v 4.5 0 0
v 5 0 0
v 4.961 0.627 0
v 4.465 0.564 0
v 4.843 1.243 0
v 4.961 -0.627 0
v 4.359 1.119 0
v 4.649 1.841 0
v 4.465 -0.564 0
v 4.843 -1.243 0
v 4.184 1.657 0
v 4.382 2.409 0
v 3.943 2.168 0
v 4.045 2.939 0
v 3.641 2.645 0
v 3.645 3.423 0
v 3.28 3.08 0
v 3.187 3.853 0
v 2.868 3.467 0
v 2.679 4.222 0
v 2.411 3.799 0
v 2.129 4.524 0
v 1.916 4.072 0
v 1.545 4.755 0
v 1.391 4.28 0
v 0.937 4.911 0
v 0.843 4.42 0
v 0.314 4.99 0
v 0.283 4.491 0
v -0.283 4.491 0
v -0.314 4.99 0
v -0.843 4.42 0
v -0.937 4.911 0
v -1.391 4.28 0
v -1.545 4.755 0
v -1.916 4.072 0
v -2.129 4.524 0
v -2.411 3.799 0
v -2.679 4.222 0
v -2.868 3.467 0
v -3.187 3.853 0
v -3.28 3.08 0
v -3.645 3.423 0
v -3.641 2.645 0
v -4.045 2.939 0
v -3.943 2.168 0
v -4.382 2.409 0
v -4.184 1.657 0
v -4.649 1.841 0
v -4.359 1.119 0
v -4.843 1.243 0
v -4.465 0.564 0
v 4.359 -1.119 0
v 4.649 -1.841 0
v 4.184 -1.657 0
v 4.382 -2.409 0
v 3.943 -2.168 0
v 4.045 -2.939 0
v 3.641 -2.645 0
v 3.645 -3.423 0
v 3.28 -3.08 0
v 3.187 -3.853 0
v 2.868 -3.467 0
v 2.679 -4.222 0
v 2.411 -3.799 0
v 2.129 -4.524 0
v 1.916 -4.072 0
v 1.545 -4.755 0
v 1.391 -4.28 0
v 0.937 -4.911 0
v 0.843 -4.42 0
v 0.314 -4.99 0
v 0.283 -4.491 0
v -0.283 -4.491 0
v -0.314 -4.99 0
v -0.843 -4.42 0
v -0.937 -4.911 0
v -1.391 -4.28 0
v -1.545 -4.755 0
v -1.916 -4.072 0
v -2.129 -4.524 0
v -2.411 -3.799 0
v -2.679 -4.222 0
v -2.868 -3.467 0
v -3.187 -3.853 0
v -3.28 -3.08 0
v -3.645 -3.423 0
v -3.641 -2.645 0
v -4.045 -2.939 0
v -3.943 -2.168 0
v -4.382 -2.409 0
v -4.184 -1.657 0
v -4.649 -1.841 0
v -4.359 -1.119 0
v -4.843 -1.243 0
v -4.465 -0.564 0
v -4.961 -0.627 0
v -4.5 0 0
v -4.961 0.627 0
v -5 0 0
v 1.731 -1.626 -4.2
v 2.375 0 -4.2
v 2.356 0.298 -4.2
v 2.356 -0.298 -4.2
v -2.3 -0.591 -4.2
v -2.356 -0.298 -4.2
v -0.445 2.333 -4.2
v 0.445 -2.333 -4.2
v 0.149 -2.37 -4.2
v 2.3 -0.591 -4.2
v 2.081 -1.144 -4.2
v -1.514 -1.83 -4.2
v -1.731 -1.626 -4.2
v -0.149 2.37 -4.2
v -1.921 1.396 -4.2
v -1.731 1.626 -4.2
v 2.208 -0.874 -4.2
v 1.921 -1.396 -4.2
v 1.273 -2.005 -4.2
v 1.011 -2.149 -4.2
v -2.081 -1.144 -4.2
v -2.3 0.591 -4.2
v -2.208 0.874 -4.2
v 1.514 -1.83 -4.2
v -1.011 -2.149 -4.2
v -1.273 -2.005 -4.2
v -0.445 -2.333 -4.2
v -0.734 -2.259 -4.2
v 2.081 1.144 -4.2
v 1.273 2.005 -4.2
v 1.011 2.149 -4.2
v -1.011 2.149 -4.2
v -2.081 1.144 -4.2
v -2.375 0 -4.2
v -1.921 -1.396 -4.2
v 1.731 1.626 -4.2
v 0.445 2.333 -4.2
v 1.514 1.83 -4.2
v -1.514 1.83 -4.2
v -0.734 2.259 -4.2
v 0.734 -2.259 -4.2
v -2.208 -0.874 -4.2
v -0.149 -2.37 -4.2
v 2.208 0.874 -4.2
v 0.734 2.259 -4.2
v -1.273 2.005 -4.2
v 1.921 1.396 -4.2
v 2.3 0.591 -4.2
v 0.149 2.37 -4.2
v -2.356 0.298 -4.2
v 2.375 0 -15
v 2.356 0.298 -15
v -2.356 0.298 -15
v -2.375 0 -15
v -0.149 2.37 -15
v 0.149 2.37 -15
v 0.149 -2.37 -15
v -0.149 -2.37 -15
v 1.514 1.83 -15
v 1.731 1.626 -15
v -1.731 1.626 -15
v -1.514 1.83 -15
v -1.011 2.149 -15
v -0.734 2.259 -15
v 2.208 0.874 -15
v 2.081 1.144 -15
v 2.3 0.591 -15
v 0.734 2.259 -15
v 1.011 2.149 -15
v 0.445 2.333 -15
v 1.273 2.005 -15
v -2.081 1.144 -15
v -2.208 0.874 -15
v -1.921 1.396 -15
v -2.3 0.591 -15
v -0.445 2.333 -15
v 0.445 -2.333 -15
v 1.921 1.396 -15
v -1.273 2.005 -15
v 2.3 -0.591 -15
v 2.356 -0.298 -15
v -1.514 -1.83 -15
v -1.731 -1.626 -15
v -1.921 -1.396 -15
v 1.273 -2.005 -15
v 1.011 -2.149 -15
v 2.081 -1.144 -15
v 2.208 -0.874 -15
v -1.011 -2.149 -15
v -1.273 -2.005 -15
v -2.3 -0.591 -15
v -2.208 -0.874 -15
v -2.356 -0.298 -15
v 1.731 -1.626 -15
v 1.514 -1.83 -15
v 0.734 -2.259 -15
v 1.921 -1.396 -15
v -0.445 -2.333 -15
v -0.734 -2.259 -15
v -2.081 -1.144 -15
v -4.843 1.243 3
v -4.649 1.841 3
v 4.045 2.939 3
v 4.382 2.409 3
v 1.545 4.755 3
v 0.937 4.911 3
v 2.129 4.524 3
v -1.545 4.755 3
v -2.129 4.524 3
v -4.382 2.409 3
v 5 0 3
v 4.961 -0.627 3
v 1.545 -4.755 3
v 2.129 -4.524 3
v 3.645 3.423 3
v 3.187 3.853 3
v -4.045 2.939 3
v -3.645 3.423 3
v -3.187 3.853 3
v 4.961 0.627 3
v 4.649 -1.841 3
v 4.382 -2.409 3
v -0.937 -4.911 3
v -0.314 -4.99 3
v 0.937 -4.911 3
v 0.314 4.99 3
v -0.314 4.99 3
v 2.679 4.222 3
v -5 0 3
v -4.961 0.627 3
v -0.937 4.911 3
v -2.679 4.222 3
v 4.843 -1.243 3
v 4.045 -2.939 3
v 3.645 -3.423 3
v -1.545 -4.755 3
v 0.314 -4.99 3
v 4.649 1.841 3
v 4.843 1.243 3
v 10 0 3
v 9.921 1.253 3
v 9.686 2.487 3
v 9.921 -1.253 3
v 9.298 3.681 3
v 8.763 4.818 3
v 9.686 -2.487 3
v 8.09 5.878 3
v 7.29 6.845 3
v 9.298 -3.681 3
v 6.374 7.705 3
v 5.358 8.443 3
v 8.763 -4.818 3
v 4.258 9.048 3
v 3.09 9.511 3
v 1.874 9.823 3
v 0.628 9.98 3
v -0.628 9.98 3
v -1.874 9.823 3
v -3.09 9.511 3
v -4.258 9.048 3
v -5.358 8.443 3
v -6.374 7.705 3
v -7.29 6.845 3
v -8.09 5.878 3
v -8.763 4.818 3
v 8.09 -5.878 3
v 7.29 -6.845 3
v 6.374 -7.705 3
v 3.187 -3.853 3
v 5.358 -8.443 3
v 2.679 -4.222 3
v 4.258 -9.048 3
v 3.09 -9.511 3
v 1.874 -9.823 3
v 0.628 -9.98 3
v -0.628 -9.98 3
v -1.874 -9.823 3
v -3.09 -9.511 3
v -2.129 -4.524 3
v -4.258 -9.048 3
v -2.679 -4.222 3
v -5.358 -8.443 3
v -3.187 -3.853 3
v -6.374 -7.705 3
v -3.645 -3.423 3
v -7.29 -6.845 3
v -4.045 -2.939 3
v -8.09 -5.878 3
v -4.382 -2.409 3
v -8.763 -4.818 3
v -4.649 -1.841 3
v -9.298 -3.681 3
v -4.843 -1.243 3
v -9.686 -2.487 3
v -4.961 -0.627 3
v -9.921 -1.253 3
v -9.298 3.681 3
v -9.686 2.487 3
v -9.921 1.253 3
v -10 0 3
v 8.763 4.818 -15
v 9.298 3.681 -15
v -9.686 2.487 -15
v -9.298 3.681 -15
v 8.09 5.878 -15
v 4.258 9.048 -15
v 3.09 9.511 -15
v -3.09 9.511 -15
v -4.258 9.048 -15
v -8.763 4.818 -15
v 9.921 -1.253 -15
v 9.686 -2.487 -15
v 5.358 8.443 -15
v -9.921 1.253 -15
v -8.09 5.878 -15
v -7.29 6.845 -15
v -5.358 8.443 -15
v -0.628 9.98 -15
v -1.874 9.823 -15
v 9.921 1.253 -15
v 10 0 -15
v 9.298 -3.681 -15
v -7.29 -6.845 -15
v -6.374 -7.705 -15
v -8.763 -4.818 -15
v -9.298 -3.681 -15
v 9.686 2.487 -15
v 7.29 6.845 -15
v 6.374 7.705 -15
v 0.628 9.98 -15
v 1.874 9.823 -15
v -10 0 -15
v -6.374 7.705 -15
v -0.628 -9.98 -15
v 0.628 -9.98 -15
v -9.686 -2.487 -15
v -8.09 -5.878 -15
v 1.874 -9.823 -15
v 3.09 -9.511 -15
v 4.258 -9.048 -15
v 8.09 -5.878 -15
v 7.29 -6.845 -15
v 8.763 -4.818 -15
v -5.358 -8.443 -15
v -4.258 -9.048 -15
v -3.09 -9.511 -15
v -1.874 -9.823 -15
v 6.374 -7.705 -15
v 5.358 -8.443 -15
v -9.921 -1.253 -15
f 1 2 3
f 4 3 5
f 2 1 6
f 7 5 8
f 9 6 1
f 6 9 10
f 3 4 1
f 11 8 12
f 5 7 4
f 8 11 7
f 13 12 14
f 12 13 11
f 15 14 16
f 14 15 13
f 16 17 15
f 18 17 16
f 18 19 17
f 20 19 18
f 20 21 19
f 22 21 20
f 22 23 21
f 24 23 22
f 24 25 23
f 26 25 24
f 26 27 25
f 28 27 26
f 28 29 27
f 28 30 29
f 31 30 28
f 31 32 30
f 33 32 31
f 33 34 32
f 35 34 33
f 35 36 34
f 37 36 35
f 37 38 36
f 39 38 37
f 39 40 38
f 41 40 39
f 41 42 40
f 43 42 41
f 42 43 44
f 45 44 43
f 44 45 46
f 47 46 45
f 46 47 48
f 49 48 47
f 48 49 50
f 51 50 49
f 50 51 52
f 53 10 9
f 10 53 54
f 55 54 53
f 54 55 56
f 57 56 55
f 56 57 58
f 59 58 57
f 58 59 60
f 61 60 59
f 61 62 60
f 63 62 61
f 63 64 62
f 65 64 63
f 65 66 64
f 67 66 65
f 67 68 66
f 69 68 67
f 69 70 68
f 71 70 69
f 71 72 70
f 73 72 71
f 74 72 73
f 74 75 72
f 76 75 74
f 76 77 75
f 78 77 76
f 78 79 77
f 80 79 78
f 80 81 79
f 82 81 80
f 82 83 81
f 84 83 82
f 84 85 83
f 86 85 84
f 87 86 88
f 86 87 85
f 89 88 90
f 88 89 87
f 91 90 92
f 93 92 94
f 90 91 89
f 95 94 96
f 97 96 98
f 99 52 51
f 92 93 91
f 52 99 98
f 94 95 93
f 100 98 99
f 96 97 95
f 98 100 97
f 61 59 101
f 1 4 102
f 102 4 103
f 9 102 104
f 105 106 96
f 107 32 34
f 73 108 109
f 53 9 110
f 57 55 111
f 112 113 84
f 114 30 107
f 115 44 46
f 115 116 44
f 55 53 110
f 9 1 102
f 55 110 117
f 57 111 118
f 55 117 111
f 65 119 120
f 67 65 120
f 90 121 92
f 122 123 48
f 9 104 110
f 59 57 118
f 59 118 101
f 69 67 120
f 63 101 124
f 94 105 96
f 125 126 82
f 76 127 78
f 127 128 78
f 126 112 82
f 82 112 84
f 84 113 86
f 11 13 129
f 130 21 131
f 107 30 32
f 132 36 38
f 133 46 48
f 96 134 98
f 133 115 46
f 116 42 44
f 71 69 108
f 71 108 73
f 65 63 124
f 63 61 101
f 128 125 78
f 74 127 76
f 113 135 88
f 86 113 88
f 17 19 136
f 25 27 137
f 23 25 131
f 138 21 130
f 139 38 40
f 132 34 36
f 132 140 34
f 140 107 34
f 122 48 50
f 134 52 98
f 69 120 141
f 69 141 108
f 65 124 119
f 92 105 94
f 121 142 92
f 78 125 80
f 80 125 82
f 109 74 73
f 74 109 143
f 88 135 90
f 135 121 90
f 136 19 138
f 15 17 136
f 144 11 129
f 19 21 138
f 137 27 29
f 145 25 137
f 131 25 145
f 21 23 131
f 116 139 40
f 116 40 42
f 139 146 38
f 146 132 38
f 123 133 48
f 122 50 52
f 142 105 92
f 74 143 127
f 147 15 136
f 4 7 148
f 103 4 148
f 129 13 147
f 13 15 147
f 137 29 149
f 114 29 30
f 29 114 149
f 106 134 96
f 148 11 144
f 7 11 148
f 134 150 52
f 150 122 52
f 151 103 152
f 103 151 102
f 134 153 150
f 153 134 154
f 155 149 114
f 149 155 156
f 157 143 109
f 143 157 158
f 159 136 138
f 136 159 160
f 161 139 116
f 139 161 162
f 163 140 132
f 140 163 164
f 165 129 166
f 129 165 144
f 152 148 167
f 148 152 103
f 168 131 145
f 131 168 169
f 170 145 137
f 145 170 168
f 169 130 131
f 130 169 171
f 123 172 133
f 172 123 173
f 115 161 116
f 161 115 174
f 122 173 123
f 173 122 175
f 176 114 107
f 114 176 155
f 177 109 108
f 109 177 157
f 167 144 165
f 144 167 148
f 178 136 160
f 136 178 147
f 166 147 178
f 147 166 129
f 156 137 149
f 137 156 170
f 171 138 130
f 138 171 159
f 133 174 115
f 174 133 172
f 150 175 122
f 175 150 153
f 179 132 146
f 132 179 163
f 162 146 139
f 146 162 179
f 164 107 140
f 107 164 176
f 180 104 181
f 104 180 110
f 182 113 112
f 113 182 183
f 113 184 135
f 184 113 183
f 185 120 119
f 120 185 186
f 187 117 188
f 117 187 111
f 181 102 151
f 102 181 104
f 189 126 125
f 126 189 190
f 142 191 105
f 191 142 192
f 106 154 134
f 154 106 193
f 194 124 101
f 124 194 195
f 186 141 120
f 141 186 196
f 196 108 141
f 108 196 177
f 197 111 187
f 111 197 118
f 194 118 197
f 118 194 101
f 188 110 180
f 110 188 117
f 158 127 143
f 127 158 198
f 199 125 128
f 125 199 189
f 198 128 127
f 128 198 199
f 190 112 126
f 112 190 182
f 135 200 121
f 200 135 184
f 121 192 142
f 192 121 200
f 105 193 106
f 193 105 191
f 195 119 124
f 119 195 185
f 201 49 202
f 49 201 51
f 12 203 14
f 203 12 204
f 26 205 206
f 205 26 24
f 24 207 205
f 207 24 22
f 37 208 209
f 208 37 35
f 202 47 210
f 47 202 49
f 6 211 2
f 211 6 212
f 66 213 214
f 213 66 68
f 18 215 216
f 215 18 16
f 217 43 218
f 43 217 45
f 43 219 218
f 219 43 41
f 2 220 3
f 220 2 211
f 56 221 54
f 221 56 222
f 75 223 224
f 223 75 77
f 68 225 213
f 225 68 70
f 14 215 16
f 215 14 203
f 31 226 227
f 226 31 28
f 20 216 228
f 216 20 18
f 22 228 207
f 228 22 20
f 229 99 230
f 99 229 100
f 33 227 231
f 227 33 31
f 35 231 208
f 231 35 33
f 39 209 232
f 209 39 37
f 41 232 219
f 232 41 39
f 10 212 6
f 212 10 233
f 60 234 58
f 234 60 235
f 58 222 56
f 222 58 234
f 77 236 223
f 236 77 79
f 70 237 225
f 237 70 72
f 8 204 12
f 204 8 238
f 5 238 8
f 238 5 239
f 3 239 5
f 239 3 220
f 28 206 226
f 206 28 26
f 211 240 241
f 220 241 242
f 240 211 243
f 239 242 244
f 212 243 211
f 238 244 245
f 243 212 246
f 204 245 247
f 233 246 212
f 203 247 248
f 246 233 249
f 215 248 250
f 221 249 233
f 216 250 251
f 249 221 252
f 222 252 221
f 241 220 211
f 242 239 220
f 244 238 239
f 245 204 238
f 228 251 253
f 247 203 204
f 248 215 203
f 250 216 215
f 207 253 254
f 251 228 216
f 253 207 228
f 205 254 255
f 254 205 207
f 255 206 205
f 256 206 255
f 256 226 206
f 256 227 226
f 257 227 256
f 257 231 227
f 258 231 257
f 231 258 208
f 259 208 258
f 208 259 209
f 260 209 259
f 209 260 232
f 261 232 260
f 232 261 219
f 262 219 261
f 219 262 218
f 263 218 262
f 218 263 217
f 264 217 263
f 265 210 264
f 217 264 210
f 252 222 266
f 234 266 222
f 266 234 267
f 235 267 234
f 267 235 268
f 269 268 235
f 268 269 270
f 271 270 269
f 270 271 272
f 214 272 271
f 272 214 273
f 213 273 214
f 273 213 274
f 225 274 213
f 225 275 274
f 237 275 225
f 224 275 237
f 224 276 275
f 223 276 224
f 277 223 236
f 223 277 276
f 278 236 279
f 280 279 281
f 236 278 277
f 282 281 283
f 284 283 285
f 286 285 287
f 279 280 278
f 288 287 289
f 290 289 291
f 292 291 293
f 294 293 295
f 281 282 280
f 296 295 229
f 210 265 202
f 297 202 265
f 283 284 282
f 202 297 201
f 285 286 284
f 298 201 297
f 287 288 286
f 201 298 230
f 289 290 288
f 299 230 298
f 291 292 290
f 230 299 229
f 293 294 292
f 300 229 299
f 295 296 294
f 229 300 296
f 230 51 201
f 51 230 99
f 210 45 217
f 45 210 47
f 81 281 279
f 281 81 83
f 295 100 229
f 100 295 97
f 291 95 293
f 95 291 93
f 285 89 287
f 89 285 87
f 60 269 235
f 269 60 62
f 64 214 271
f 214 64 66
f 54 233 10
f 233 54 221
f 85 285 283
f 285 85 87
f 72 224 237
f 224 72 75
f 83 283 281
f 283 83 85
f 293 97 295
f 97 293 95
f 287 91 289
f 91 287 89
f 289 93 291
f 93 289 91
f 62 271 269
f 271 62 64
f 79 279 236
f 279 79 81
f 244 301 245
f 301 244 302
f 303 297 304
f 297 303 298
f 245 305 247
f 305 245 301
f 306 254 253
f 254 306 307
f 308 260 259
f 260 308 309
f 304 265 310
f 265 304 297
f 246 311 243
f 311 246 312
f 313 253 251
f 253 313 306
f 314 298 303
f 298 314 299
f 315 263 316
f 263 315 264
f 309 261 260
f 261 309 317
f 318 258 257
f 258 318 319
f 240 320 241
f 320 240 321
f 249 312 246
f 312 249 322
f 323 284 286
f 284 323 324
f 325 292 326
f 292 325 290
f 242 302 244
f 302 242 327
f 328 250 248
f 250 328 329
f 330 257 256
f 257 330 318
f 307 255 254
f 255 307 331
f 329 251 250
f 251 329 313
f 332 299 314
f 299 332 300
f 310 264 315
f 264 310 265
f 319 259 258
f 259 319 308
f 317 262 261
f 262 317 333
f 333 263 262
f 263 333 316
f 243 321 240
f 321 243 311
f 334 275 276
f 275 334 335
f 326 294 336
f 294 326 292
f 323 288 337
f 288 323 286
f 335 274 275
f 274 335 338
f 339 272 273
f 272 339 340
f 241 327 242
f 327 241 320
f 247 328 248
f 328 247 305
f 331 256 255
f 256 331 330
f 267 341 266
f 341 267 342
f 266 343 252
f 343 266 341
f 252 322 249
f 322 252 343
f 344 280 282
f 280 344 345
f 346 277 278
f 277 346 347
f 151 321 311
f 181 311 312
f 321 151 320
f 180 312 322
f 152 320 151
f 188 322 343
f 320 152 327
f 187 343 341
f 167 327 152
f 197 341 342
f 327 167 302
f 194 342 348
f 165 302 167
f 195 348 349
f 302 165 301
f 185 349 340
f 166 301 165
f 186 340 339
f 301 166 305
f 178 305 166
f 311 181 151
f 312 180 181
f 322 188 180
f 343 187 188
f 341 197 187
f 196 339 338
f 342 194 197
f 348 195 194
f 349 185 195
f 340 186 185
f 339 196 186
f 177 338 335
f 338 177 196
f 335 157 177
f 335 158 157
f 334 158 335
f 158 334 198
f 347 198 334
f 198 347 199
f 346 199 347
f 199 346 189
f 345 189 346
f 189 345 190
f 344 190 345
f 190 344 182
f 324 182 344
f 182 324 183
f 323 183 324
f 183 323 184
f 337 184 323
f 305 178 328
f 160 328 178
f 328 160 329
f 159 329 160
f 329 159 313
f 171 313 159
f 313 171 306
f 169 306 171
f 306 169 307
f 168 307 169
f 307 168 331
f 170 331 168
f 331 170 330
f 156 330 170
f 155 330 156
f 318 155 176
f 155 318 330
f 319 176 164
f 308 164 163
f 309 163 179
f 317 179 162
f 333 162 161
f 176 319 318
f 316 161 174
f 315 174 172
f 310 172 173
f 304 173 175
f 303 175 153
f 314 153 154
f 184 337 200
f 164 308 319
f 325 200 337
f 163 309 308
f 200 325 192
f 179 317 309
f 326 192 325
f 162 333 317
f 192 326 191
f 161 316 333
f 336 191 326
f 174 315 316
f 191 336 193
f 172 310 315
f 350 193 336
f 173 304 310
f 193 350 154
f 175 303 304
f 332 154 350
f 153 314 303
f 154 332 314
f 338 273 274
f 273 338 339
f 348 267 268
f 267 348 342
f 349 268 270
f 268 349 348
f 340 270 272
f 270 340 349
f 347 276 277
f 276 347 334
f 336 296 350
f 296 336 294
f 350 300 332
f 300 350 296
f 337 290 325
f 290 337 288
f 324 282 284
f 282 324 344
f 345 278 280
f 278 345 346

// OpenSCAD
$fn = 50;

difference() {
	union() {
		translate(v = [0, 0, -15.0]) {
			cylinder(h = 18, r = 10.0);
		}
	}
	union() {
		translate(v = [0, 0, 0]) {
			rotate(a = [0, 0, 0]) {
				difference() {
					union() {
						translate(v = [0, 0, -18.0]) {
							cylinder(h = 18, r = 2.25);
						}
						translate(v = [0, 0, -4.2]) {
							cylinder(h = 4.2, r1 = 2.375, r2 = 4.5);
						}
						translate(v = [0, 0, -18.0]) {
							cylinder(h = 18, r = 2.375);
						}
						translate(v = [0, 0, -18.0]) {
							cylinder(h = 18, r = 2.25);
						}
					}
					union();
				}
			}
		}
		#cylinder(h = 3, r = 5.0);
	}
}
